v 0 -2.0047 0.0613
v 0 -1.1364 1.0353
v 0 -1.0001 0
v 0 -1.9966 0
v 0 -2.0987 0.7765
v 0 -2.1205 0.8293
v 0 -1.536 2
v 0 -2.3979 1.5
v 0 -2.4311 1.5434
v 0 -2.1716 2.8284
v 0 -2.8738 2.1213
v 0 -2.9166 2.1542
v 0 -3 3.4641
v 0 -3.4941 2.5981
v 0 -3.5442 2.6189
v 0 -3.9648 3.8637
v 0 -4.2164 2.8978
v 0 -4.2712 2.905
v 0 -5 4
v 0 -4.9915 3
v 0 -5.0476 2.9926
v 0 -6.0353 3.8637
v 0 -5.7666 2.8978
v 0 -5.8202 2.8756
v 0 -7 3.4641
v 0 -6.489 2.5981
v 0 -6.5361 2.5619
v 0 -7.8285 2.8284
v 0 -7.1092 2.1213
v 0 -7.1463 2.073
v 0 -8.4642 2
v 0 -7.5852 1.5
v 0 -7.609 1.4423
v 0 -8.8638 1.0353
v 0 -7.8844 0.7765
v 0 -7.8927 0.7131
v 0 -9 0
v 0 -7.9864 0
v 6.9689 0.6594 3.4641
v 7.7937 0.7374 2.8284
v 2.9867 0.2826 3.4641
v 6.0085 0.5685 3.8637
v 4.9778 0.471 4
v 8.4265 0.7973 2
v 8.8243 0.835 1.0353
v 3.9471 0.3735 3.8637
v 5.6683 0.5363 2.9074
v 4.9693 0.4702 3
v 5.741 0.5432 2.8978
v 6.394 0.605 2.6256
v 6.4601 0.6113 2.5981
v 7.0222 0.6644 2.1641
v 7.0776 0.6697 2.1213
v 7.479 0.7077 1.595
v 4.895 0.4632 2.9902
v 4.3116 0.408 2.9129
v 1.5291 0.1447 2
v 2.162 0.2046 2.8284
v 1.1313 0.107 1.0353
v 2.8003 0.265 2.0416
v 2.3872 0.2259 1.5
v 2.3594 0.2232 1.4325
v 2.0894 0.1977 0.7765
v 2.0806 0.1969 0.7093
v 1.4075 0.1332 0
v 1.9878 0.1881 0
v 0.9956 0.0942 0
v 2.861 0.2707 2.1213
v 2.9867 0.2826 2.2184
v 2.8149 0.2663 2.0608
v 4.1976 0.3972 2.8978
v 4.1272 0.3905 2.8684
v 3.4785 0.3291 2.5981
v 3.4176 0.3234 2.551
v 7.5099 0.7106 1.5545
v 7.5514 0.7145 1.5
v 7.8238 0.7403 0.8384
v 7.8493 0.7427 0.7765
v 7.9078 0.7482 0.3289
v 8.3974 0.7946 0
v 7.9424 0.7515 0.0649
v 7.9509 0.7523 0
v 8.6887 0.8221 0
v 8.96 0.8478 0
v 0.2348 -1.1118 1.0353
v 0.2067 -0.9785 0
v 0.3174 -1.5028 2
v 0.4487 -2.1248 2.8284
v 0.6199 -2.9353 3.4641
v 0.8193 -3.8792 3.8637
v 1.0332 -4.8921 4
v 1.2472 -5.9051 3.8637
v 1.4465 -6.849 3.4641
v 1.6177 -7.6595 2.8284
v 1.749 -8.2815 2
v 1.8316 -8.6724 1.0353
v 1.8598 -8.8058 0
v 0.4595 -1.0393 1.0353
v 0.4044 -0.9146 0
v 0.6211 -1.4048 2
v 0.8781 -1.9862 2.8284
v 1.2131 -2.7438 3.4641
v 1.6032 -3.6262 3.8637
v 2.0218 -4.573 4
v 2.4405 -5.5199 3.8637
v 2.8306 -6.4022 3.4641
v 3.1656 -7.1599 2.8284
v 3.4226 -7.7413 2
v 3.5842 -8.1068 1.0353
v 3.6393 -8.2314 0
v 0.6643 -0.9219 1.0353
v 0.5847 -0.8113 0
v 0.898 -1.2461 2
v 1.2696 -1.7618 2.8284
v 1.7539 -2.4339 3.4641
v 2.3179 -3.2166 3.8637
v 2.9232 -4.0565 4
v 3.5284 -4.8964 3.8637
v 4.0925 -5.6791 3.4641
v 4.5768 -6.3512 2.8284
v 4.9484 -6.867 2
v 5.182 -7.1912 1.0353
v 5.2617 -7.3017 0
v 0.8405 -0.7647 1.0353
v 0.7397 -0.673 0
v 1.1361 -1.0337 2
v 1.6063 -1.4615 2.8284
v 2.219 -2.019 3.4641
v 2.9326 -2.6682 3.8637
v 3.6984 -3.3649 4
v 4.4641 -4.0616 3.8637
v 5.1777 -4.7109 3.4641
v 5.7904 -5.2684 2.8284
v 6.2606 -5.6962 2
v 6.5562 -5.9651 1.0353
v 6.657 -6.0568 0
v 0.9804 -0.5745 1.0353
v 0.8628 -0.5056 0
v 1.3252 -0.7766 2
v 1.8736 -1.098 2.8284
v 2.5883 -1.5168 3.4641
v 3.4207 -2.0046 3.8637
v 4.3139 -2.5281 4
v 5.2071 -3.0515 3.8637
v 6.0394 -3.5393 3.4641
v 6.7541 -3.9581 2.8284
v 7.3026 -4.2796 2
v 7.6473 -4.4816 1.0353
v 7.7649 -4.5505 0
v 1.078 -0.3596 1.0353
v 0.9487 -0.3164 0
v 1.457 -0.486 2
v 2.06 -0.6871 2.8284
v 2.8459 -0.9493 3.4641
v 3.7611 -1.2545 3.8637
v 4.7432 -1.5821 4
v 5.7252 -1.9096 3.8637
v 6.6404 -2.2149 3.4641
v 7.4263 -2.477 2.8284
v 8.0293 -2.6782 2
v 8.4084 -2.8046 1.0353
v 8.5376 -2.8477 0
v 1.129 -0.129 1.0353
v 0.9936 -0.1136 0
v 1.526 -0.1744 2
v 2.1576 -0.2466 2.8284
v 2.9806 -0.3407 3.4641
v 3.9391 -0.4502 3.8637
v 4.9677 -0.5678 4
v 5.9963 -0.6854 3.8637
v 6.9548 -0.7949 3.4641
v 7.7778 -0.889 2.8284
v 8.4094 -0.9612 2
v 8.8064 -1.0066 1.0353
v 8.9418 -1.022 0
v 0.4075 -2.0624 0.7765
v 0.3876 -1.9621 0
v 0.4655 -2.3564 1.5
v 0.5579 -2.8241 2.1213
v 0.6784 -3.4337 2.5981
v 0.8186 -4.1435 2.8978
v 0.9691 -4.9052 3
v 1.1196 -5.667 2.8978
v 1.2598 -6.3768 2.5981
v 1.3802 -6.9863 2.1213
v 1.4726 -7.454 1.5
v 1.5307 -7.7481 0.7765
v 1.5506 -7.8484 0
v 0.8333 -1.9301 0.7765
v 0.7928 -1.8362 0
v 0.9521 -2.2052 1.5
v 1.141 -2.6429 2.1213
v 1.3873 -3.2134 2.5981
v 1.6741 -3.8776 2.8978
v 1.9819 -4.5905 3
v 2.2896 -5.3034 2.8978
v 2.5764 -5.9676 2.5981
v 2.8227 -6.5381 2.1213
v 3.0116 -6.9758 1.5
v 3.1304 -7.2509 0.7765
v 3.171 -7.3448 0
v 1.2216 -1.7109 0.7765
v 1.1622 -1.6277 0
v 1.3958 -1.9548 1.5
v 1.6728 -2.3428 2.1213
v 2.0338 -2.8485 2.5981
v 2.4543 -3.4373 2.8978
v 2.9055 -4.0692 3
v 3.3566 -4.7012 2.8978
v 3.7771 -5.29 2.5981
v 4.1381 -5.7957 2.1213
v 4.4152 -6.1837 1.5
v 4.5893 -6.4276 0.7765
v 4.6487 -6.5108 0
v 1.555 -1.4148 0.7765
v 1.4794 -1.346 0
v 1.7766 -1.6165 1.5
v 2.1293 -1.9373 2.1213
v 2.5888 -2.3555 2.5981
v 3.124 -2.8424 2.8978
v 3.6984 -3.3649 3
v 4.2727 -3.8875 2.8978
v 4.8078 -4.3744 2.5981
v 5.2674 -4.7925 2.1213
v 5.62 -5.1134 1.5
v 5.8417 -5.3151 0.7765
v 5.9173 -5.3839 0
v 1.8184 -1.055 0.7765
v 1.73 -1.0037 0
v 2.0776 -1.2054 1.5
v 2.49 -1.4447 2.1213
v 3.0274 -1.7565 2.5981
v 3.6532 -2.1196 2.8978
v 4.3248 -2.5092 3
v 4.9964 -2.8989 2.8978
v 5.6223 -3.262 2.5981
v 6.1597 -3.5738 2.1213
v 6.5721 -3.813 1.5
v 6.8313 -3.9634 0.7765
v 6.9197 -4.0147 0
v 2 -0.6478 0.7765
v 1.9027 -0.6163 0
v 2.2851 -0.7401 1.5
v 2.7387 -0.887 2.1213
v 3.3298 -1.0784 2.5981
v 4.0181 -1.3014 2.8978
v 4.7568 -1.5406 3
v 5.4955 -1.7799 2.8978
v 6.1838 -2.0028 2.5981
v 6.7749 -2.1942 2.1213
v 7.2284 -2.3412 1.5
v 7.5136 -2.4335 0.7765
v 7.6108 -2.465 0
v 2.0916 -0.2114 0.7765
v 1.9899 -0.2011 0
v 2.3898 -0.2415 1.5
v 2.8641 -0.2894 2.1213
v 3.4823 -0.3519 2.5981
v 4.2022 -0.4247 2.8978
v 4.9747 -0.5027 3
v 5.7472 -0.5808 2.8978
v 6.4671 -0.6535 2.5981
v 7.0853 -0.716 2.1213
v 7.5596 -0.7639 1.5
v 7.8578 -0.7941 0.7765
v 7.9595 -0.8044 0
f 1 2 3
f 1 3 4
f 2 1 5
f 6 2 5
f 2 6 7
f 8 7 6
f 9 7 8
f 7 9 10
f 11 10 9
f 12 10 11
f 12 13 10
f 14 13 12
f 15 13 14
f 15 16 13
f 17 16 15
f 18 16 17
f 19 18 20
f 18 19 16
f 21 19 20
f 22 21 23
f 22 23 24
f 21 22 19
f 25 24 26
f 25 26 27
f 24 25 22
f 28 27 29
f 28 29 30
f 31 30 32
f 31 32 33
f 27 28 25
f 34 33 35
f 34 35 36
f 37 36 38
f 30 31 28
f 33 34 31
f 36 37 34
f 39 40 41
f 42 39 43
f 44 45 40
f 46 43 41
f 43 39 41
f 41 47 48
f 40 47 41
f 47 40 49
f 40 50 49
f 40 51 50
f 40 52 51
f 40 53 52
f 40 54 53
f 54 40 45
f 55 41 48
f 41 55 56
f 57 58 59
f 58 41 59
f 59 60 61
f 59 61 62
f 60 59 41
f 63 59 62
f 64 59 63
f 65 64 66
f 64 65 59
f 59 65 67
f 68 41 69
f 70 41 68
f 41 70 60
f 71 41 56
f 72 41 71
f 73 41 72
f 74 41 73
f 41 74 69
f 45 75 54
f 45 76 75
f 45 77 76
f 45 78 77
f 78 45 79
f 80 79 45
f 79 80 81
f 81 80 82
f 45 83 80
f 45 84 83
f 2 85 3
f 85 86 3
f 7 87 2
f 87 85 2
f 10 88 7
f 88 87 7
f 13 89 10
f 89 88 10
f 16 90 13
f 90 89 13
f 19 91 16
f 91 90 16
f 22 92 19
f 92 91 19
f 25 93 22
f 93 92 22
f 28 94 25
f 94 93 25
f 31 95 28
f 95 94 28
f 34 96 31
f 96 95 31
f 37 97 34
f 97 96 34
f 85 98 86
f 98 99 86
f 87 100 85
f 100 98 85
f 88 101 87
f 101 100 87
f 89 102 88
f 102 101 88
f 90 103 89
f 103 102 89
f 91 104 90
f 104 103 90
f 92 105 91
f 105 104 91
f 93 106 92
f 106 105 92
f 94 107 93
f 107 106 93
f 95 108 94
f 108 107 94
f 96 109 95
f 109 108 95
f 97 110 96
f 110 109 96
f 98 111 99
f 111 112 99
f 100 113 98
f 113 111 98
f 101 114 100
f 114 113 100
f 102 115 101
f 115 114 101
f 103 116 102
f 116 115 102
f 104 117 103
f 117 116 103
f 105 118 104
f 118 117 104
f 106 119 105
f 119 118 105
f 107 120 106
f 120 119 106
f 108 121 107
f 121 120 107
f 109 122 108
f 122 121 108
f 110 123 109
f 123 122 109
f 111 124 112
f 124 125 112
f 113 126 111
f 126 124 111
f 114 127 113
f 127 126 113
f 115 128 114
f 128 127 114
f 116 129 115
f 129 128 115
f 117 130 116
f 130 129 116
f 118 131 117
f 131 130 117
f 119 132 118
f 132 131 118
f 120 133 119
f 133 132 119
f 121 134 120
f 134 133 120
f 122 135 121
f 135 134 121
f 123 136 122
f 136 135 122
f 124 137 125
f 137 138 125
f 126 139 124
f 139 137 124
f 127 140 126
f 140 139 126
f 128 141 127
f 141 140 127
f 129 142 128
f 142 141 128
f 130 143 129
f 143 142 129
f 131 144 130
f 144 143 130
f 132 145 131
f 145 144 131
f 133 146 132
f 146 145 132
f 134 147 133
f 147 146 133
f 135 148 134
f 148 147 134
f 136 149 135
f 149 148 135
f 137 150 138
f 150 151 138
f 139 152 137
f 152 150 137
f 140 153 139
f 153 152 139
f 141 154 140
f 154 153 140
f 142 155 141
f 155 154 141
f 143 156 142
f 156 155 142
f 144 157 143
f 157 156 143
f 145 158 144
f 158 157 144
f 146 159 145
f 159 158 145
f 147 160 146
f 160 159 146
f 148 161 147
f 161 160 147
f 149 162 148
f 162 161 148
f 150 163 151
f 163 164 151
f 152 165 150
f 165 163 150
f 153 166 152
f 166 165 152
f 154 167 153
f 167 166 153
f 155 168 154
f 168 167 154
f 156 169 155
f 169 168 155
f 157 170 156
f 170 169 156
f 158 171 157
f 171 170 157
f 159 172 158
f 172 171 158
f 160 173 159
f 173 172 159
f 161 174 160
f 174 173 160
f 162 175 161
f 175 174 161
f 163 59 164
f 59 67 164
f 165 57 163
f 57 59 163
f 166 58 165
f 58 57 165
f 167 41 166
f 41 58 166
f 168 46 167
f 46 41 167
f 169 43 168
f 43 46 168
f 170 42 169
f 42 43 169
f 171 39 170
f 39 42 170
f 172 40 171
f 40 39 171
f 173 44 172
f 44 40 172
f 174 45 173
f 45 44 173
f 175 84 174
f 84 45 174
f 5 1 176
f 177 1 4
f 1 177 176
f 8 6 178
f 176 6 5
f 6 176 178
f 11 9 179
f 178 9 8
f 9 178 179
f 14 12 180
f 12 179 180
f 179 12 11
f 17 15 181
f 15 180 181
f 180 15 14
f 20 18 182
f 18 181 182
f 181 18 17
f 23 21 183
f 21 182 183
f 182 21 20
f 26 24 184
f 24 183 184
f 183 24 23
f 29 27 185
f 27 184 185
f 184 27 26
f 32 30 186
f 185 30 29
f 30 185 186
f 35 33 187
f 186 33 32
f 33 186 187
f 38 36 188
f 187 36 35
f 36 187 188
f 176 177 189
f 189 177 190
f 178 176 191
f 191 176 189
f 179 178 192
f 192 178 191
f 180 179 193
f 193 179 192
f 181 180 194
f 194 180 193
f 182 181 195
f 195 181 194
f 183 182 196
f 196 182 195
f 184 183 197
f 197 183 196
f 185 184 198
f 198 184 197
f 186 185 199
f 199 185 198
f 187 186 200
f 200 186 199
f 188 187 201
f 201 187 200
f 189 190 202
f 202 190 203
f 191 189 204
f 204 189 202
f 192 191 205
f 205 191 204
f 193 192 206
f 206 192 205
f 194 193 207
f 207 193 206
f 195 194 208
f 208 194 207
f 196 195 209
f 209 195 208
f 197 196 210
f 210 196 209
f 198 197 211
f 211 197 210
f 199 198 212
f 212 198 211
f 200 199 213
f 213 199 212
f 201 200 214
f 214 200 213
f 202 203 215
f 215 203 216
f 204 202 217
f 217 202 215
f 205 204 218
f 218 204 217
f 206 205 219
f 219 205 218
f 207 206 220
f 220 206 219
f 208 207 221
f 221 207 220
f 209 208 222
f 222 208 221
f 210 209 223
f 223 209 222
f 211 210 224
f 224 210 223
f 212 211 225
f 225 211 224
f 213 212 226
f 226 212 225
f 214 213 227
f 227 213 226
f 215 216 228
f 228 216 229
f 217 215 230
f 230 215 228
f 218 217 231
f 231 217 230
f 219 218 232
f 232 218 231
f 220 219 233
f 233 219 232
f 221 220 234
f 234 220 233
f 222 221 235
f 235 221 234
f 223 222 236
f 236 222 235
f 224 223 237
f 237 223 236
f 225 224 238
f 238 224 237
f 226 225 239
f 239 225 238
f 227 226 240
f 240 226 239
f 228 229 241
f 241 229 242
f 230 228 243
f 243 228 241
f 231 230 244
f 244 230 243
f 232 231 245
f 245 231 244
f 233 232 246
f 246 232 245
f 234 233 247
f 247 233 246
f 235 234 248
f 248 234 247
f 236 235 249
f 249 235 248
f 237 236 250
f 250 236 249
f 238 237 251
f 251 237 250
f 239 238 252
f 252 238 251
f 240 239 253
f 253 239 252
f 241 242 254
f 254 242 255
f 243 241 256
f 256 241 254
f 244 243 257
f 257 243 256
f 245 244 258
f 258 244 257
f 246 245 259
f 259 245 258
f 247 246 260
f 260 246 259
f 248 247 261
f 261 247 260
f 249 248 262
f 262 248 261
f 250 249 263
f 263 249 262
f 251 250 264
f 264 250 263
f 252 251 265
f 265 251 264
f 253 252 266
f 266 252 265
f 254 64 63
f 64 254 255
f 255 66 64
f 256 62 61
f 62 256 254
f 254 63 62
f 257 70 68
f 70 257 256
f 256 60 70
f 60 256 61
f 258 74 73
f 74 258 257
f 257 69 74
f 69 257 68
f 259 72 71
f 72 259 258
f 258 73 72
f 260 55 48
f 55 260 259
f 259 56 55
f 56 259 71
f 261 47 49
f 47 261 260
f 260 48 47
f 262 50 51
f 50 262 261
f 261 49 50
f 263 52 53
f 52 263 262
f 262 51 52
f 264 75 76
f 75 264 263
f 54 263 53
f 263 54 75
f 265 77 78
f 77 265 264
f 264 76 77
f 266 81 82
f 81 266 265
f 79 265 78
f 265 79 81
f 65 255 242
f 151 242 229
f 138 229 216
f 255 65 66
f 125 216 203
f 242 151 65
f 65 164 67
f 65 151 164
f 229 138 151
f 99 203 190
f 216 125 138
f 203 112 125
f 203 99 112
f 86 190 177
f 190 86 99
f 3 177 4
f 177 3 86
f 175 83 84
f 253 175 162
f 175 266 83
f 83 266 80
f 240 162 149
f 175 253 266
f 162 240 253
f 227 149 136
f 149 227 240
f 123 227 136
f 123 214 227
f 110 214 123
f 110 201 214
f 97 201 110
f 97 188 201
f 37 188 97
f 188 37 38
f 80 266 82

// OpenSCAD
// file: ../build_environments.scad
// build_environments.scad: modules to build level sections
//

module pool(diameter=10.0, wall_height=2.0, step_width=3.0, connections=[])
{
    difference() {
        union() {
        difference() {
            cylinder(h=0.5,r1=diameter+step_width,r2=diameter+step_width,$fn=48);
            translate([0,0,-0.1])
                cylinder(h=0.7,r1=diameter,r2=diameter,$fn=48);
        }
        difference() {
            cylinder(h=wall_height,r1=diameter+step_width+1.0,r2=diameter+step_width+1.0,$fn=48);
            translate([0,0,-0.1])
                cylinder(h=wall_height+0.2,r1=diameter+step_width,r2=diameter+step_width,$fn=48);
        }
        }
    
        for (c = connections)
        {
            rotate([0,90,0]) {
                angle = atan2(c[1],c[0]);
                rotate([-angle,0,0]) {
                    cylinder(h=diameter+5.0,r1=c[2],r2=c[2],$fn=48);
                }
            }
        }
    }
}

module straight(length=10.0, width=2.0, dy1=0.0, dy2=0.0, dz=0.0)
{
    dims = [0, 0, 0, 0, 0, (dz/length)];
    matrix = [
        [ 1, dims[0], dims[1], 0 ],
        [ dims[2], 1, dims[4], 0 ],
        [ dims[5], dims[3], 1, 0 ],
        [ 0, 0, 0, 1 ]
    ];
    multmatrix(matrix)
    difference() {
        translate([dy1,0,0])
        union() {
            rotate([0,90,0]) {
                difference() {
                    cylinder(h=(length-dy1-dy2),r1=width+1.0,r2=width+1.0,$fn=24);
                    translate([0,0,-0.1])
                        cylinder(h=(length-dy1-dy2+0.2),r1=width,r2=width,$fn=24);
                }
                difference() {
                    cylinder(h=1.0,r1=width+2.0,r2=width+2.0,$fn=24);
                    translate([0,0,-0.1])
                        cylinder(h=1.2,r1=width,r2=width,$fn=24);
                }
                translate([0,0,(length-dy1-dy2)-1.0]) {
                    difference() {
                        cylinder(h=1.0,r1=width+2.0,r2=width+2.0,$fn=24);
                        translate([0,0,-0.1])
                            cylinder(h=1.2,r1=width,r2=width,$fn=24);
                    }
                }
            }
        }
        translate([0,0,-(2*width+4.0)/2])
            cube([3*length,3*length,2*width+4.0],center=true);
    }
}

module curve(p0=[0,0], center=[0,0], dir=1, angle=0.0, width=2.0)
{
    radius = sqrt((p0[0]-center[0])*(p0[0]-center[0]) + (p0[1]-center[1])*(p0[1]-center[1]));
    if (dir == 0) {
        difference() {
            rotate([0,0,-90])
            difference() {
                rotate_extrude(angle = angle, convexity = 10, $fn=32)
                    translate([radius, 0, 0])
                        circle(r = width+1.0,$fn=24);
                rotate([0,0,-1.0])
                    rotate_extrude(angle = angle+2.0, convexity = 10, $fn=32)
                        translate([radius, 0, 0])
                            circle(r = width,$fn=24);
            }
            translate([0,0,-(2*width+4.0)/2])
                cube([5*radius,5*radius,2*width+4.0],center=true);
        }
    }
    else {
        difference() {
            rotate([0,0,90])
            difference() {
                rotate_extrude(angle = -angle, convexity = 10, $fn=32)
                    translate([radius, 0, 0])
                        circle(r = width+1.0,$fn=24);
                rotate([0,0,1.0])
                    rotate_extrude(angle = -angle-2.0, convexity = 10, $fn=32)
                        translate([radius, 0, 0])
                            circle(r = width,$fn=24);
            }
            translate([0,0,-(2*width+4.0)/2])
                cube([5*radius,5*radius,2*width+4.0],center=true);
        }
    }

}

// test pool
//pool(diameter=12.0000, wall_height=3.0000, step_width=3.0000, connections=[[0.0000,-26.0000,2.0000], [23.6074,0.0000,2.0000]]);

// test straight, slope
//straight(length=26.0000, width=2.0000, dy1=11.8322, dy2=6.7082, dz=0.0000);
//straight(length=29.1549, width=12.0000, dy1=0.0000, dy2=0.0000, dz=-15.0000);

// test curve
//curve(p0=[23.6074, 0.0000], center=[23.6074, 5.0000], dir=0, angle=60.1011, width=2.0000);
//curve(p0=[33.6426, 12.4219], center=[37.9771, 9.9295], dir=1, angle=120.4627, width=2.0000);
// main file
use <../build_environments.scad>;
curve(p0=[-106.9949, 114.5738], center=[-106.9278, 119.5734], dir=0, angle=95.4052, width=3.0000);
